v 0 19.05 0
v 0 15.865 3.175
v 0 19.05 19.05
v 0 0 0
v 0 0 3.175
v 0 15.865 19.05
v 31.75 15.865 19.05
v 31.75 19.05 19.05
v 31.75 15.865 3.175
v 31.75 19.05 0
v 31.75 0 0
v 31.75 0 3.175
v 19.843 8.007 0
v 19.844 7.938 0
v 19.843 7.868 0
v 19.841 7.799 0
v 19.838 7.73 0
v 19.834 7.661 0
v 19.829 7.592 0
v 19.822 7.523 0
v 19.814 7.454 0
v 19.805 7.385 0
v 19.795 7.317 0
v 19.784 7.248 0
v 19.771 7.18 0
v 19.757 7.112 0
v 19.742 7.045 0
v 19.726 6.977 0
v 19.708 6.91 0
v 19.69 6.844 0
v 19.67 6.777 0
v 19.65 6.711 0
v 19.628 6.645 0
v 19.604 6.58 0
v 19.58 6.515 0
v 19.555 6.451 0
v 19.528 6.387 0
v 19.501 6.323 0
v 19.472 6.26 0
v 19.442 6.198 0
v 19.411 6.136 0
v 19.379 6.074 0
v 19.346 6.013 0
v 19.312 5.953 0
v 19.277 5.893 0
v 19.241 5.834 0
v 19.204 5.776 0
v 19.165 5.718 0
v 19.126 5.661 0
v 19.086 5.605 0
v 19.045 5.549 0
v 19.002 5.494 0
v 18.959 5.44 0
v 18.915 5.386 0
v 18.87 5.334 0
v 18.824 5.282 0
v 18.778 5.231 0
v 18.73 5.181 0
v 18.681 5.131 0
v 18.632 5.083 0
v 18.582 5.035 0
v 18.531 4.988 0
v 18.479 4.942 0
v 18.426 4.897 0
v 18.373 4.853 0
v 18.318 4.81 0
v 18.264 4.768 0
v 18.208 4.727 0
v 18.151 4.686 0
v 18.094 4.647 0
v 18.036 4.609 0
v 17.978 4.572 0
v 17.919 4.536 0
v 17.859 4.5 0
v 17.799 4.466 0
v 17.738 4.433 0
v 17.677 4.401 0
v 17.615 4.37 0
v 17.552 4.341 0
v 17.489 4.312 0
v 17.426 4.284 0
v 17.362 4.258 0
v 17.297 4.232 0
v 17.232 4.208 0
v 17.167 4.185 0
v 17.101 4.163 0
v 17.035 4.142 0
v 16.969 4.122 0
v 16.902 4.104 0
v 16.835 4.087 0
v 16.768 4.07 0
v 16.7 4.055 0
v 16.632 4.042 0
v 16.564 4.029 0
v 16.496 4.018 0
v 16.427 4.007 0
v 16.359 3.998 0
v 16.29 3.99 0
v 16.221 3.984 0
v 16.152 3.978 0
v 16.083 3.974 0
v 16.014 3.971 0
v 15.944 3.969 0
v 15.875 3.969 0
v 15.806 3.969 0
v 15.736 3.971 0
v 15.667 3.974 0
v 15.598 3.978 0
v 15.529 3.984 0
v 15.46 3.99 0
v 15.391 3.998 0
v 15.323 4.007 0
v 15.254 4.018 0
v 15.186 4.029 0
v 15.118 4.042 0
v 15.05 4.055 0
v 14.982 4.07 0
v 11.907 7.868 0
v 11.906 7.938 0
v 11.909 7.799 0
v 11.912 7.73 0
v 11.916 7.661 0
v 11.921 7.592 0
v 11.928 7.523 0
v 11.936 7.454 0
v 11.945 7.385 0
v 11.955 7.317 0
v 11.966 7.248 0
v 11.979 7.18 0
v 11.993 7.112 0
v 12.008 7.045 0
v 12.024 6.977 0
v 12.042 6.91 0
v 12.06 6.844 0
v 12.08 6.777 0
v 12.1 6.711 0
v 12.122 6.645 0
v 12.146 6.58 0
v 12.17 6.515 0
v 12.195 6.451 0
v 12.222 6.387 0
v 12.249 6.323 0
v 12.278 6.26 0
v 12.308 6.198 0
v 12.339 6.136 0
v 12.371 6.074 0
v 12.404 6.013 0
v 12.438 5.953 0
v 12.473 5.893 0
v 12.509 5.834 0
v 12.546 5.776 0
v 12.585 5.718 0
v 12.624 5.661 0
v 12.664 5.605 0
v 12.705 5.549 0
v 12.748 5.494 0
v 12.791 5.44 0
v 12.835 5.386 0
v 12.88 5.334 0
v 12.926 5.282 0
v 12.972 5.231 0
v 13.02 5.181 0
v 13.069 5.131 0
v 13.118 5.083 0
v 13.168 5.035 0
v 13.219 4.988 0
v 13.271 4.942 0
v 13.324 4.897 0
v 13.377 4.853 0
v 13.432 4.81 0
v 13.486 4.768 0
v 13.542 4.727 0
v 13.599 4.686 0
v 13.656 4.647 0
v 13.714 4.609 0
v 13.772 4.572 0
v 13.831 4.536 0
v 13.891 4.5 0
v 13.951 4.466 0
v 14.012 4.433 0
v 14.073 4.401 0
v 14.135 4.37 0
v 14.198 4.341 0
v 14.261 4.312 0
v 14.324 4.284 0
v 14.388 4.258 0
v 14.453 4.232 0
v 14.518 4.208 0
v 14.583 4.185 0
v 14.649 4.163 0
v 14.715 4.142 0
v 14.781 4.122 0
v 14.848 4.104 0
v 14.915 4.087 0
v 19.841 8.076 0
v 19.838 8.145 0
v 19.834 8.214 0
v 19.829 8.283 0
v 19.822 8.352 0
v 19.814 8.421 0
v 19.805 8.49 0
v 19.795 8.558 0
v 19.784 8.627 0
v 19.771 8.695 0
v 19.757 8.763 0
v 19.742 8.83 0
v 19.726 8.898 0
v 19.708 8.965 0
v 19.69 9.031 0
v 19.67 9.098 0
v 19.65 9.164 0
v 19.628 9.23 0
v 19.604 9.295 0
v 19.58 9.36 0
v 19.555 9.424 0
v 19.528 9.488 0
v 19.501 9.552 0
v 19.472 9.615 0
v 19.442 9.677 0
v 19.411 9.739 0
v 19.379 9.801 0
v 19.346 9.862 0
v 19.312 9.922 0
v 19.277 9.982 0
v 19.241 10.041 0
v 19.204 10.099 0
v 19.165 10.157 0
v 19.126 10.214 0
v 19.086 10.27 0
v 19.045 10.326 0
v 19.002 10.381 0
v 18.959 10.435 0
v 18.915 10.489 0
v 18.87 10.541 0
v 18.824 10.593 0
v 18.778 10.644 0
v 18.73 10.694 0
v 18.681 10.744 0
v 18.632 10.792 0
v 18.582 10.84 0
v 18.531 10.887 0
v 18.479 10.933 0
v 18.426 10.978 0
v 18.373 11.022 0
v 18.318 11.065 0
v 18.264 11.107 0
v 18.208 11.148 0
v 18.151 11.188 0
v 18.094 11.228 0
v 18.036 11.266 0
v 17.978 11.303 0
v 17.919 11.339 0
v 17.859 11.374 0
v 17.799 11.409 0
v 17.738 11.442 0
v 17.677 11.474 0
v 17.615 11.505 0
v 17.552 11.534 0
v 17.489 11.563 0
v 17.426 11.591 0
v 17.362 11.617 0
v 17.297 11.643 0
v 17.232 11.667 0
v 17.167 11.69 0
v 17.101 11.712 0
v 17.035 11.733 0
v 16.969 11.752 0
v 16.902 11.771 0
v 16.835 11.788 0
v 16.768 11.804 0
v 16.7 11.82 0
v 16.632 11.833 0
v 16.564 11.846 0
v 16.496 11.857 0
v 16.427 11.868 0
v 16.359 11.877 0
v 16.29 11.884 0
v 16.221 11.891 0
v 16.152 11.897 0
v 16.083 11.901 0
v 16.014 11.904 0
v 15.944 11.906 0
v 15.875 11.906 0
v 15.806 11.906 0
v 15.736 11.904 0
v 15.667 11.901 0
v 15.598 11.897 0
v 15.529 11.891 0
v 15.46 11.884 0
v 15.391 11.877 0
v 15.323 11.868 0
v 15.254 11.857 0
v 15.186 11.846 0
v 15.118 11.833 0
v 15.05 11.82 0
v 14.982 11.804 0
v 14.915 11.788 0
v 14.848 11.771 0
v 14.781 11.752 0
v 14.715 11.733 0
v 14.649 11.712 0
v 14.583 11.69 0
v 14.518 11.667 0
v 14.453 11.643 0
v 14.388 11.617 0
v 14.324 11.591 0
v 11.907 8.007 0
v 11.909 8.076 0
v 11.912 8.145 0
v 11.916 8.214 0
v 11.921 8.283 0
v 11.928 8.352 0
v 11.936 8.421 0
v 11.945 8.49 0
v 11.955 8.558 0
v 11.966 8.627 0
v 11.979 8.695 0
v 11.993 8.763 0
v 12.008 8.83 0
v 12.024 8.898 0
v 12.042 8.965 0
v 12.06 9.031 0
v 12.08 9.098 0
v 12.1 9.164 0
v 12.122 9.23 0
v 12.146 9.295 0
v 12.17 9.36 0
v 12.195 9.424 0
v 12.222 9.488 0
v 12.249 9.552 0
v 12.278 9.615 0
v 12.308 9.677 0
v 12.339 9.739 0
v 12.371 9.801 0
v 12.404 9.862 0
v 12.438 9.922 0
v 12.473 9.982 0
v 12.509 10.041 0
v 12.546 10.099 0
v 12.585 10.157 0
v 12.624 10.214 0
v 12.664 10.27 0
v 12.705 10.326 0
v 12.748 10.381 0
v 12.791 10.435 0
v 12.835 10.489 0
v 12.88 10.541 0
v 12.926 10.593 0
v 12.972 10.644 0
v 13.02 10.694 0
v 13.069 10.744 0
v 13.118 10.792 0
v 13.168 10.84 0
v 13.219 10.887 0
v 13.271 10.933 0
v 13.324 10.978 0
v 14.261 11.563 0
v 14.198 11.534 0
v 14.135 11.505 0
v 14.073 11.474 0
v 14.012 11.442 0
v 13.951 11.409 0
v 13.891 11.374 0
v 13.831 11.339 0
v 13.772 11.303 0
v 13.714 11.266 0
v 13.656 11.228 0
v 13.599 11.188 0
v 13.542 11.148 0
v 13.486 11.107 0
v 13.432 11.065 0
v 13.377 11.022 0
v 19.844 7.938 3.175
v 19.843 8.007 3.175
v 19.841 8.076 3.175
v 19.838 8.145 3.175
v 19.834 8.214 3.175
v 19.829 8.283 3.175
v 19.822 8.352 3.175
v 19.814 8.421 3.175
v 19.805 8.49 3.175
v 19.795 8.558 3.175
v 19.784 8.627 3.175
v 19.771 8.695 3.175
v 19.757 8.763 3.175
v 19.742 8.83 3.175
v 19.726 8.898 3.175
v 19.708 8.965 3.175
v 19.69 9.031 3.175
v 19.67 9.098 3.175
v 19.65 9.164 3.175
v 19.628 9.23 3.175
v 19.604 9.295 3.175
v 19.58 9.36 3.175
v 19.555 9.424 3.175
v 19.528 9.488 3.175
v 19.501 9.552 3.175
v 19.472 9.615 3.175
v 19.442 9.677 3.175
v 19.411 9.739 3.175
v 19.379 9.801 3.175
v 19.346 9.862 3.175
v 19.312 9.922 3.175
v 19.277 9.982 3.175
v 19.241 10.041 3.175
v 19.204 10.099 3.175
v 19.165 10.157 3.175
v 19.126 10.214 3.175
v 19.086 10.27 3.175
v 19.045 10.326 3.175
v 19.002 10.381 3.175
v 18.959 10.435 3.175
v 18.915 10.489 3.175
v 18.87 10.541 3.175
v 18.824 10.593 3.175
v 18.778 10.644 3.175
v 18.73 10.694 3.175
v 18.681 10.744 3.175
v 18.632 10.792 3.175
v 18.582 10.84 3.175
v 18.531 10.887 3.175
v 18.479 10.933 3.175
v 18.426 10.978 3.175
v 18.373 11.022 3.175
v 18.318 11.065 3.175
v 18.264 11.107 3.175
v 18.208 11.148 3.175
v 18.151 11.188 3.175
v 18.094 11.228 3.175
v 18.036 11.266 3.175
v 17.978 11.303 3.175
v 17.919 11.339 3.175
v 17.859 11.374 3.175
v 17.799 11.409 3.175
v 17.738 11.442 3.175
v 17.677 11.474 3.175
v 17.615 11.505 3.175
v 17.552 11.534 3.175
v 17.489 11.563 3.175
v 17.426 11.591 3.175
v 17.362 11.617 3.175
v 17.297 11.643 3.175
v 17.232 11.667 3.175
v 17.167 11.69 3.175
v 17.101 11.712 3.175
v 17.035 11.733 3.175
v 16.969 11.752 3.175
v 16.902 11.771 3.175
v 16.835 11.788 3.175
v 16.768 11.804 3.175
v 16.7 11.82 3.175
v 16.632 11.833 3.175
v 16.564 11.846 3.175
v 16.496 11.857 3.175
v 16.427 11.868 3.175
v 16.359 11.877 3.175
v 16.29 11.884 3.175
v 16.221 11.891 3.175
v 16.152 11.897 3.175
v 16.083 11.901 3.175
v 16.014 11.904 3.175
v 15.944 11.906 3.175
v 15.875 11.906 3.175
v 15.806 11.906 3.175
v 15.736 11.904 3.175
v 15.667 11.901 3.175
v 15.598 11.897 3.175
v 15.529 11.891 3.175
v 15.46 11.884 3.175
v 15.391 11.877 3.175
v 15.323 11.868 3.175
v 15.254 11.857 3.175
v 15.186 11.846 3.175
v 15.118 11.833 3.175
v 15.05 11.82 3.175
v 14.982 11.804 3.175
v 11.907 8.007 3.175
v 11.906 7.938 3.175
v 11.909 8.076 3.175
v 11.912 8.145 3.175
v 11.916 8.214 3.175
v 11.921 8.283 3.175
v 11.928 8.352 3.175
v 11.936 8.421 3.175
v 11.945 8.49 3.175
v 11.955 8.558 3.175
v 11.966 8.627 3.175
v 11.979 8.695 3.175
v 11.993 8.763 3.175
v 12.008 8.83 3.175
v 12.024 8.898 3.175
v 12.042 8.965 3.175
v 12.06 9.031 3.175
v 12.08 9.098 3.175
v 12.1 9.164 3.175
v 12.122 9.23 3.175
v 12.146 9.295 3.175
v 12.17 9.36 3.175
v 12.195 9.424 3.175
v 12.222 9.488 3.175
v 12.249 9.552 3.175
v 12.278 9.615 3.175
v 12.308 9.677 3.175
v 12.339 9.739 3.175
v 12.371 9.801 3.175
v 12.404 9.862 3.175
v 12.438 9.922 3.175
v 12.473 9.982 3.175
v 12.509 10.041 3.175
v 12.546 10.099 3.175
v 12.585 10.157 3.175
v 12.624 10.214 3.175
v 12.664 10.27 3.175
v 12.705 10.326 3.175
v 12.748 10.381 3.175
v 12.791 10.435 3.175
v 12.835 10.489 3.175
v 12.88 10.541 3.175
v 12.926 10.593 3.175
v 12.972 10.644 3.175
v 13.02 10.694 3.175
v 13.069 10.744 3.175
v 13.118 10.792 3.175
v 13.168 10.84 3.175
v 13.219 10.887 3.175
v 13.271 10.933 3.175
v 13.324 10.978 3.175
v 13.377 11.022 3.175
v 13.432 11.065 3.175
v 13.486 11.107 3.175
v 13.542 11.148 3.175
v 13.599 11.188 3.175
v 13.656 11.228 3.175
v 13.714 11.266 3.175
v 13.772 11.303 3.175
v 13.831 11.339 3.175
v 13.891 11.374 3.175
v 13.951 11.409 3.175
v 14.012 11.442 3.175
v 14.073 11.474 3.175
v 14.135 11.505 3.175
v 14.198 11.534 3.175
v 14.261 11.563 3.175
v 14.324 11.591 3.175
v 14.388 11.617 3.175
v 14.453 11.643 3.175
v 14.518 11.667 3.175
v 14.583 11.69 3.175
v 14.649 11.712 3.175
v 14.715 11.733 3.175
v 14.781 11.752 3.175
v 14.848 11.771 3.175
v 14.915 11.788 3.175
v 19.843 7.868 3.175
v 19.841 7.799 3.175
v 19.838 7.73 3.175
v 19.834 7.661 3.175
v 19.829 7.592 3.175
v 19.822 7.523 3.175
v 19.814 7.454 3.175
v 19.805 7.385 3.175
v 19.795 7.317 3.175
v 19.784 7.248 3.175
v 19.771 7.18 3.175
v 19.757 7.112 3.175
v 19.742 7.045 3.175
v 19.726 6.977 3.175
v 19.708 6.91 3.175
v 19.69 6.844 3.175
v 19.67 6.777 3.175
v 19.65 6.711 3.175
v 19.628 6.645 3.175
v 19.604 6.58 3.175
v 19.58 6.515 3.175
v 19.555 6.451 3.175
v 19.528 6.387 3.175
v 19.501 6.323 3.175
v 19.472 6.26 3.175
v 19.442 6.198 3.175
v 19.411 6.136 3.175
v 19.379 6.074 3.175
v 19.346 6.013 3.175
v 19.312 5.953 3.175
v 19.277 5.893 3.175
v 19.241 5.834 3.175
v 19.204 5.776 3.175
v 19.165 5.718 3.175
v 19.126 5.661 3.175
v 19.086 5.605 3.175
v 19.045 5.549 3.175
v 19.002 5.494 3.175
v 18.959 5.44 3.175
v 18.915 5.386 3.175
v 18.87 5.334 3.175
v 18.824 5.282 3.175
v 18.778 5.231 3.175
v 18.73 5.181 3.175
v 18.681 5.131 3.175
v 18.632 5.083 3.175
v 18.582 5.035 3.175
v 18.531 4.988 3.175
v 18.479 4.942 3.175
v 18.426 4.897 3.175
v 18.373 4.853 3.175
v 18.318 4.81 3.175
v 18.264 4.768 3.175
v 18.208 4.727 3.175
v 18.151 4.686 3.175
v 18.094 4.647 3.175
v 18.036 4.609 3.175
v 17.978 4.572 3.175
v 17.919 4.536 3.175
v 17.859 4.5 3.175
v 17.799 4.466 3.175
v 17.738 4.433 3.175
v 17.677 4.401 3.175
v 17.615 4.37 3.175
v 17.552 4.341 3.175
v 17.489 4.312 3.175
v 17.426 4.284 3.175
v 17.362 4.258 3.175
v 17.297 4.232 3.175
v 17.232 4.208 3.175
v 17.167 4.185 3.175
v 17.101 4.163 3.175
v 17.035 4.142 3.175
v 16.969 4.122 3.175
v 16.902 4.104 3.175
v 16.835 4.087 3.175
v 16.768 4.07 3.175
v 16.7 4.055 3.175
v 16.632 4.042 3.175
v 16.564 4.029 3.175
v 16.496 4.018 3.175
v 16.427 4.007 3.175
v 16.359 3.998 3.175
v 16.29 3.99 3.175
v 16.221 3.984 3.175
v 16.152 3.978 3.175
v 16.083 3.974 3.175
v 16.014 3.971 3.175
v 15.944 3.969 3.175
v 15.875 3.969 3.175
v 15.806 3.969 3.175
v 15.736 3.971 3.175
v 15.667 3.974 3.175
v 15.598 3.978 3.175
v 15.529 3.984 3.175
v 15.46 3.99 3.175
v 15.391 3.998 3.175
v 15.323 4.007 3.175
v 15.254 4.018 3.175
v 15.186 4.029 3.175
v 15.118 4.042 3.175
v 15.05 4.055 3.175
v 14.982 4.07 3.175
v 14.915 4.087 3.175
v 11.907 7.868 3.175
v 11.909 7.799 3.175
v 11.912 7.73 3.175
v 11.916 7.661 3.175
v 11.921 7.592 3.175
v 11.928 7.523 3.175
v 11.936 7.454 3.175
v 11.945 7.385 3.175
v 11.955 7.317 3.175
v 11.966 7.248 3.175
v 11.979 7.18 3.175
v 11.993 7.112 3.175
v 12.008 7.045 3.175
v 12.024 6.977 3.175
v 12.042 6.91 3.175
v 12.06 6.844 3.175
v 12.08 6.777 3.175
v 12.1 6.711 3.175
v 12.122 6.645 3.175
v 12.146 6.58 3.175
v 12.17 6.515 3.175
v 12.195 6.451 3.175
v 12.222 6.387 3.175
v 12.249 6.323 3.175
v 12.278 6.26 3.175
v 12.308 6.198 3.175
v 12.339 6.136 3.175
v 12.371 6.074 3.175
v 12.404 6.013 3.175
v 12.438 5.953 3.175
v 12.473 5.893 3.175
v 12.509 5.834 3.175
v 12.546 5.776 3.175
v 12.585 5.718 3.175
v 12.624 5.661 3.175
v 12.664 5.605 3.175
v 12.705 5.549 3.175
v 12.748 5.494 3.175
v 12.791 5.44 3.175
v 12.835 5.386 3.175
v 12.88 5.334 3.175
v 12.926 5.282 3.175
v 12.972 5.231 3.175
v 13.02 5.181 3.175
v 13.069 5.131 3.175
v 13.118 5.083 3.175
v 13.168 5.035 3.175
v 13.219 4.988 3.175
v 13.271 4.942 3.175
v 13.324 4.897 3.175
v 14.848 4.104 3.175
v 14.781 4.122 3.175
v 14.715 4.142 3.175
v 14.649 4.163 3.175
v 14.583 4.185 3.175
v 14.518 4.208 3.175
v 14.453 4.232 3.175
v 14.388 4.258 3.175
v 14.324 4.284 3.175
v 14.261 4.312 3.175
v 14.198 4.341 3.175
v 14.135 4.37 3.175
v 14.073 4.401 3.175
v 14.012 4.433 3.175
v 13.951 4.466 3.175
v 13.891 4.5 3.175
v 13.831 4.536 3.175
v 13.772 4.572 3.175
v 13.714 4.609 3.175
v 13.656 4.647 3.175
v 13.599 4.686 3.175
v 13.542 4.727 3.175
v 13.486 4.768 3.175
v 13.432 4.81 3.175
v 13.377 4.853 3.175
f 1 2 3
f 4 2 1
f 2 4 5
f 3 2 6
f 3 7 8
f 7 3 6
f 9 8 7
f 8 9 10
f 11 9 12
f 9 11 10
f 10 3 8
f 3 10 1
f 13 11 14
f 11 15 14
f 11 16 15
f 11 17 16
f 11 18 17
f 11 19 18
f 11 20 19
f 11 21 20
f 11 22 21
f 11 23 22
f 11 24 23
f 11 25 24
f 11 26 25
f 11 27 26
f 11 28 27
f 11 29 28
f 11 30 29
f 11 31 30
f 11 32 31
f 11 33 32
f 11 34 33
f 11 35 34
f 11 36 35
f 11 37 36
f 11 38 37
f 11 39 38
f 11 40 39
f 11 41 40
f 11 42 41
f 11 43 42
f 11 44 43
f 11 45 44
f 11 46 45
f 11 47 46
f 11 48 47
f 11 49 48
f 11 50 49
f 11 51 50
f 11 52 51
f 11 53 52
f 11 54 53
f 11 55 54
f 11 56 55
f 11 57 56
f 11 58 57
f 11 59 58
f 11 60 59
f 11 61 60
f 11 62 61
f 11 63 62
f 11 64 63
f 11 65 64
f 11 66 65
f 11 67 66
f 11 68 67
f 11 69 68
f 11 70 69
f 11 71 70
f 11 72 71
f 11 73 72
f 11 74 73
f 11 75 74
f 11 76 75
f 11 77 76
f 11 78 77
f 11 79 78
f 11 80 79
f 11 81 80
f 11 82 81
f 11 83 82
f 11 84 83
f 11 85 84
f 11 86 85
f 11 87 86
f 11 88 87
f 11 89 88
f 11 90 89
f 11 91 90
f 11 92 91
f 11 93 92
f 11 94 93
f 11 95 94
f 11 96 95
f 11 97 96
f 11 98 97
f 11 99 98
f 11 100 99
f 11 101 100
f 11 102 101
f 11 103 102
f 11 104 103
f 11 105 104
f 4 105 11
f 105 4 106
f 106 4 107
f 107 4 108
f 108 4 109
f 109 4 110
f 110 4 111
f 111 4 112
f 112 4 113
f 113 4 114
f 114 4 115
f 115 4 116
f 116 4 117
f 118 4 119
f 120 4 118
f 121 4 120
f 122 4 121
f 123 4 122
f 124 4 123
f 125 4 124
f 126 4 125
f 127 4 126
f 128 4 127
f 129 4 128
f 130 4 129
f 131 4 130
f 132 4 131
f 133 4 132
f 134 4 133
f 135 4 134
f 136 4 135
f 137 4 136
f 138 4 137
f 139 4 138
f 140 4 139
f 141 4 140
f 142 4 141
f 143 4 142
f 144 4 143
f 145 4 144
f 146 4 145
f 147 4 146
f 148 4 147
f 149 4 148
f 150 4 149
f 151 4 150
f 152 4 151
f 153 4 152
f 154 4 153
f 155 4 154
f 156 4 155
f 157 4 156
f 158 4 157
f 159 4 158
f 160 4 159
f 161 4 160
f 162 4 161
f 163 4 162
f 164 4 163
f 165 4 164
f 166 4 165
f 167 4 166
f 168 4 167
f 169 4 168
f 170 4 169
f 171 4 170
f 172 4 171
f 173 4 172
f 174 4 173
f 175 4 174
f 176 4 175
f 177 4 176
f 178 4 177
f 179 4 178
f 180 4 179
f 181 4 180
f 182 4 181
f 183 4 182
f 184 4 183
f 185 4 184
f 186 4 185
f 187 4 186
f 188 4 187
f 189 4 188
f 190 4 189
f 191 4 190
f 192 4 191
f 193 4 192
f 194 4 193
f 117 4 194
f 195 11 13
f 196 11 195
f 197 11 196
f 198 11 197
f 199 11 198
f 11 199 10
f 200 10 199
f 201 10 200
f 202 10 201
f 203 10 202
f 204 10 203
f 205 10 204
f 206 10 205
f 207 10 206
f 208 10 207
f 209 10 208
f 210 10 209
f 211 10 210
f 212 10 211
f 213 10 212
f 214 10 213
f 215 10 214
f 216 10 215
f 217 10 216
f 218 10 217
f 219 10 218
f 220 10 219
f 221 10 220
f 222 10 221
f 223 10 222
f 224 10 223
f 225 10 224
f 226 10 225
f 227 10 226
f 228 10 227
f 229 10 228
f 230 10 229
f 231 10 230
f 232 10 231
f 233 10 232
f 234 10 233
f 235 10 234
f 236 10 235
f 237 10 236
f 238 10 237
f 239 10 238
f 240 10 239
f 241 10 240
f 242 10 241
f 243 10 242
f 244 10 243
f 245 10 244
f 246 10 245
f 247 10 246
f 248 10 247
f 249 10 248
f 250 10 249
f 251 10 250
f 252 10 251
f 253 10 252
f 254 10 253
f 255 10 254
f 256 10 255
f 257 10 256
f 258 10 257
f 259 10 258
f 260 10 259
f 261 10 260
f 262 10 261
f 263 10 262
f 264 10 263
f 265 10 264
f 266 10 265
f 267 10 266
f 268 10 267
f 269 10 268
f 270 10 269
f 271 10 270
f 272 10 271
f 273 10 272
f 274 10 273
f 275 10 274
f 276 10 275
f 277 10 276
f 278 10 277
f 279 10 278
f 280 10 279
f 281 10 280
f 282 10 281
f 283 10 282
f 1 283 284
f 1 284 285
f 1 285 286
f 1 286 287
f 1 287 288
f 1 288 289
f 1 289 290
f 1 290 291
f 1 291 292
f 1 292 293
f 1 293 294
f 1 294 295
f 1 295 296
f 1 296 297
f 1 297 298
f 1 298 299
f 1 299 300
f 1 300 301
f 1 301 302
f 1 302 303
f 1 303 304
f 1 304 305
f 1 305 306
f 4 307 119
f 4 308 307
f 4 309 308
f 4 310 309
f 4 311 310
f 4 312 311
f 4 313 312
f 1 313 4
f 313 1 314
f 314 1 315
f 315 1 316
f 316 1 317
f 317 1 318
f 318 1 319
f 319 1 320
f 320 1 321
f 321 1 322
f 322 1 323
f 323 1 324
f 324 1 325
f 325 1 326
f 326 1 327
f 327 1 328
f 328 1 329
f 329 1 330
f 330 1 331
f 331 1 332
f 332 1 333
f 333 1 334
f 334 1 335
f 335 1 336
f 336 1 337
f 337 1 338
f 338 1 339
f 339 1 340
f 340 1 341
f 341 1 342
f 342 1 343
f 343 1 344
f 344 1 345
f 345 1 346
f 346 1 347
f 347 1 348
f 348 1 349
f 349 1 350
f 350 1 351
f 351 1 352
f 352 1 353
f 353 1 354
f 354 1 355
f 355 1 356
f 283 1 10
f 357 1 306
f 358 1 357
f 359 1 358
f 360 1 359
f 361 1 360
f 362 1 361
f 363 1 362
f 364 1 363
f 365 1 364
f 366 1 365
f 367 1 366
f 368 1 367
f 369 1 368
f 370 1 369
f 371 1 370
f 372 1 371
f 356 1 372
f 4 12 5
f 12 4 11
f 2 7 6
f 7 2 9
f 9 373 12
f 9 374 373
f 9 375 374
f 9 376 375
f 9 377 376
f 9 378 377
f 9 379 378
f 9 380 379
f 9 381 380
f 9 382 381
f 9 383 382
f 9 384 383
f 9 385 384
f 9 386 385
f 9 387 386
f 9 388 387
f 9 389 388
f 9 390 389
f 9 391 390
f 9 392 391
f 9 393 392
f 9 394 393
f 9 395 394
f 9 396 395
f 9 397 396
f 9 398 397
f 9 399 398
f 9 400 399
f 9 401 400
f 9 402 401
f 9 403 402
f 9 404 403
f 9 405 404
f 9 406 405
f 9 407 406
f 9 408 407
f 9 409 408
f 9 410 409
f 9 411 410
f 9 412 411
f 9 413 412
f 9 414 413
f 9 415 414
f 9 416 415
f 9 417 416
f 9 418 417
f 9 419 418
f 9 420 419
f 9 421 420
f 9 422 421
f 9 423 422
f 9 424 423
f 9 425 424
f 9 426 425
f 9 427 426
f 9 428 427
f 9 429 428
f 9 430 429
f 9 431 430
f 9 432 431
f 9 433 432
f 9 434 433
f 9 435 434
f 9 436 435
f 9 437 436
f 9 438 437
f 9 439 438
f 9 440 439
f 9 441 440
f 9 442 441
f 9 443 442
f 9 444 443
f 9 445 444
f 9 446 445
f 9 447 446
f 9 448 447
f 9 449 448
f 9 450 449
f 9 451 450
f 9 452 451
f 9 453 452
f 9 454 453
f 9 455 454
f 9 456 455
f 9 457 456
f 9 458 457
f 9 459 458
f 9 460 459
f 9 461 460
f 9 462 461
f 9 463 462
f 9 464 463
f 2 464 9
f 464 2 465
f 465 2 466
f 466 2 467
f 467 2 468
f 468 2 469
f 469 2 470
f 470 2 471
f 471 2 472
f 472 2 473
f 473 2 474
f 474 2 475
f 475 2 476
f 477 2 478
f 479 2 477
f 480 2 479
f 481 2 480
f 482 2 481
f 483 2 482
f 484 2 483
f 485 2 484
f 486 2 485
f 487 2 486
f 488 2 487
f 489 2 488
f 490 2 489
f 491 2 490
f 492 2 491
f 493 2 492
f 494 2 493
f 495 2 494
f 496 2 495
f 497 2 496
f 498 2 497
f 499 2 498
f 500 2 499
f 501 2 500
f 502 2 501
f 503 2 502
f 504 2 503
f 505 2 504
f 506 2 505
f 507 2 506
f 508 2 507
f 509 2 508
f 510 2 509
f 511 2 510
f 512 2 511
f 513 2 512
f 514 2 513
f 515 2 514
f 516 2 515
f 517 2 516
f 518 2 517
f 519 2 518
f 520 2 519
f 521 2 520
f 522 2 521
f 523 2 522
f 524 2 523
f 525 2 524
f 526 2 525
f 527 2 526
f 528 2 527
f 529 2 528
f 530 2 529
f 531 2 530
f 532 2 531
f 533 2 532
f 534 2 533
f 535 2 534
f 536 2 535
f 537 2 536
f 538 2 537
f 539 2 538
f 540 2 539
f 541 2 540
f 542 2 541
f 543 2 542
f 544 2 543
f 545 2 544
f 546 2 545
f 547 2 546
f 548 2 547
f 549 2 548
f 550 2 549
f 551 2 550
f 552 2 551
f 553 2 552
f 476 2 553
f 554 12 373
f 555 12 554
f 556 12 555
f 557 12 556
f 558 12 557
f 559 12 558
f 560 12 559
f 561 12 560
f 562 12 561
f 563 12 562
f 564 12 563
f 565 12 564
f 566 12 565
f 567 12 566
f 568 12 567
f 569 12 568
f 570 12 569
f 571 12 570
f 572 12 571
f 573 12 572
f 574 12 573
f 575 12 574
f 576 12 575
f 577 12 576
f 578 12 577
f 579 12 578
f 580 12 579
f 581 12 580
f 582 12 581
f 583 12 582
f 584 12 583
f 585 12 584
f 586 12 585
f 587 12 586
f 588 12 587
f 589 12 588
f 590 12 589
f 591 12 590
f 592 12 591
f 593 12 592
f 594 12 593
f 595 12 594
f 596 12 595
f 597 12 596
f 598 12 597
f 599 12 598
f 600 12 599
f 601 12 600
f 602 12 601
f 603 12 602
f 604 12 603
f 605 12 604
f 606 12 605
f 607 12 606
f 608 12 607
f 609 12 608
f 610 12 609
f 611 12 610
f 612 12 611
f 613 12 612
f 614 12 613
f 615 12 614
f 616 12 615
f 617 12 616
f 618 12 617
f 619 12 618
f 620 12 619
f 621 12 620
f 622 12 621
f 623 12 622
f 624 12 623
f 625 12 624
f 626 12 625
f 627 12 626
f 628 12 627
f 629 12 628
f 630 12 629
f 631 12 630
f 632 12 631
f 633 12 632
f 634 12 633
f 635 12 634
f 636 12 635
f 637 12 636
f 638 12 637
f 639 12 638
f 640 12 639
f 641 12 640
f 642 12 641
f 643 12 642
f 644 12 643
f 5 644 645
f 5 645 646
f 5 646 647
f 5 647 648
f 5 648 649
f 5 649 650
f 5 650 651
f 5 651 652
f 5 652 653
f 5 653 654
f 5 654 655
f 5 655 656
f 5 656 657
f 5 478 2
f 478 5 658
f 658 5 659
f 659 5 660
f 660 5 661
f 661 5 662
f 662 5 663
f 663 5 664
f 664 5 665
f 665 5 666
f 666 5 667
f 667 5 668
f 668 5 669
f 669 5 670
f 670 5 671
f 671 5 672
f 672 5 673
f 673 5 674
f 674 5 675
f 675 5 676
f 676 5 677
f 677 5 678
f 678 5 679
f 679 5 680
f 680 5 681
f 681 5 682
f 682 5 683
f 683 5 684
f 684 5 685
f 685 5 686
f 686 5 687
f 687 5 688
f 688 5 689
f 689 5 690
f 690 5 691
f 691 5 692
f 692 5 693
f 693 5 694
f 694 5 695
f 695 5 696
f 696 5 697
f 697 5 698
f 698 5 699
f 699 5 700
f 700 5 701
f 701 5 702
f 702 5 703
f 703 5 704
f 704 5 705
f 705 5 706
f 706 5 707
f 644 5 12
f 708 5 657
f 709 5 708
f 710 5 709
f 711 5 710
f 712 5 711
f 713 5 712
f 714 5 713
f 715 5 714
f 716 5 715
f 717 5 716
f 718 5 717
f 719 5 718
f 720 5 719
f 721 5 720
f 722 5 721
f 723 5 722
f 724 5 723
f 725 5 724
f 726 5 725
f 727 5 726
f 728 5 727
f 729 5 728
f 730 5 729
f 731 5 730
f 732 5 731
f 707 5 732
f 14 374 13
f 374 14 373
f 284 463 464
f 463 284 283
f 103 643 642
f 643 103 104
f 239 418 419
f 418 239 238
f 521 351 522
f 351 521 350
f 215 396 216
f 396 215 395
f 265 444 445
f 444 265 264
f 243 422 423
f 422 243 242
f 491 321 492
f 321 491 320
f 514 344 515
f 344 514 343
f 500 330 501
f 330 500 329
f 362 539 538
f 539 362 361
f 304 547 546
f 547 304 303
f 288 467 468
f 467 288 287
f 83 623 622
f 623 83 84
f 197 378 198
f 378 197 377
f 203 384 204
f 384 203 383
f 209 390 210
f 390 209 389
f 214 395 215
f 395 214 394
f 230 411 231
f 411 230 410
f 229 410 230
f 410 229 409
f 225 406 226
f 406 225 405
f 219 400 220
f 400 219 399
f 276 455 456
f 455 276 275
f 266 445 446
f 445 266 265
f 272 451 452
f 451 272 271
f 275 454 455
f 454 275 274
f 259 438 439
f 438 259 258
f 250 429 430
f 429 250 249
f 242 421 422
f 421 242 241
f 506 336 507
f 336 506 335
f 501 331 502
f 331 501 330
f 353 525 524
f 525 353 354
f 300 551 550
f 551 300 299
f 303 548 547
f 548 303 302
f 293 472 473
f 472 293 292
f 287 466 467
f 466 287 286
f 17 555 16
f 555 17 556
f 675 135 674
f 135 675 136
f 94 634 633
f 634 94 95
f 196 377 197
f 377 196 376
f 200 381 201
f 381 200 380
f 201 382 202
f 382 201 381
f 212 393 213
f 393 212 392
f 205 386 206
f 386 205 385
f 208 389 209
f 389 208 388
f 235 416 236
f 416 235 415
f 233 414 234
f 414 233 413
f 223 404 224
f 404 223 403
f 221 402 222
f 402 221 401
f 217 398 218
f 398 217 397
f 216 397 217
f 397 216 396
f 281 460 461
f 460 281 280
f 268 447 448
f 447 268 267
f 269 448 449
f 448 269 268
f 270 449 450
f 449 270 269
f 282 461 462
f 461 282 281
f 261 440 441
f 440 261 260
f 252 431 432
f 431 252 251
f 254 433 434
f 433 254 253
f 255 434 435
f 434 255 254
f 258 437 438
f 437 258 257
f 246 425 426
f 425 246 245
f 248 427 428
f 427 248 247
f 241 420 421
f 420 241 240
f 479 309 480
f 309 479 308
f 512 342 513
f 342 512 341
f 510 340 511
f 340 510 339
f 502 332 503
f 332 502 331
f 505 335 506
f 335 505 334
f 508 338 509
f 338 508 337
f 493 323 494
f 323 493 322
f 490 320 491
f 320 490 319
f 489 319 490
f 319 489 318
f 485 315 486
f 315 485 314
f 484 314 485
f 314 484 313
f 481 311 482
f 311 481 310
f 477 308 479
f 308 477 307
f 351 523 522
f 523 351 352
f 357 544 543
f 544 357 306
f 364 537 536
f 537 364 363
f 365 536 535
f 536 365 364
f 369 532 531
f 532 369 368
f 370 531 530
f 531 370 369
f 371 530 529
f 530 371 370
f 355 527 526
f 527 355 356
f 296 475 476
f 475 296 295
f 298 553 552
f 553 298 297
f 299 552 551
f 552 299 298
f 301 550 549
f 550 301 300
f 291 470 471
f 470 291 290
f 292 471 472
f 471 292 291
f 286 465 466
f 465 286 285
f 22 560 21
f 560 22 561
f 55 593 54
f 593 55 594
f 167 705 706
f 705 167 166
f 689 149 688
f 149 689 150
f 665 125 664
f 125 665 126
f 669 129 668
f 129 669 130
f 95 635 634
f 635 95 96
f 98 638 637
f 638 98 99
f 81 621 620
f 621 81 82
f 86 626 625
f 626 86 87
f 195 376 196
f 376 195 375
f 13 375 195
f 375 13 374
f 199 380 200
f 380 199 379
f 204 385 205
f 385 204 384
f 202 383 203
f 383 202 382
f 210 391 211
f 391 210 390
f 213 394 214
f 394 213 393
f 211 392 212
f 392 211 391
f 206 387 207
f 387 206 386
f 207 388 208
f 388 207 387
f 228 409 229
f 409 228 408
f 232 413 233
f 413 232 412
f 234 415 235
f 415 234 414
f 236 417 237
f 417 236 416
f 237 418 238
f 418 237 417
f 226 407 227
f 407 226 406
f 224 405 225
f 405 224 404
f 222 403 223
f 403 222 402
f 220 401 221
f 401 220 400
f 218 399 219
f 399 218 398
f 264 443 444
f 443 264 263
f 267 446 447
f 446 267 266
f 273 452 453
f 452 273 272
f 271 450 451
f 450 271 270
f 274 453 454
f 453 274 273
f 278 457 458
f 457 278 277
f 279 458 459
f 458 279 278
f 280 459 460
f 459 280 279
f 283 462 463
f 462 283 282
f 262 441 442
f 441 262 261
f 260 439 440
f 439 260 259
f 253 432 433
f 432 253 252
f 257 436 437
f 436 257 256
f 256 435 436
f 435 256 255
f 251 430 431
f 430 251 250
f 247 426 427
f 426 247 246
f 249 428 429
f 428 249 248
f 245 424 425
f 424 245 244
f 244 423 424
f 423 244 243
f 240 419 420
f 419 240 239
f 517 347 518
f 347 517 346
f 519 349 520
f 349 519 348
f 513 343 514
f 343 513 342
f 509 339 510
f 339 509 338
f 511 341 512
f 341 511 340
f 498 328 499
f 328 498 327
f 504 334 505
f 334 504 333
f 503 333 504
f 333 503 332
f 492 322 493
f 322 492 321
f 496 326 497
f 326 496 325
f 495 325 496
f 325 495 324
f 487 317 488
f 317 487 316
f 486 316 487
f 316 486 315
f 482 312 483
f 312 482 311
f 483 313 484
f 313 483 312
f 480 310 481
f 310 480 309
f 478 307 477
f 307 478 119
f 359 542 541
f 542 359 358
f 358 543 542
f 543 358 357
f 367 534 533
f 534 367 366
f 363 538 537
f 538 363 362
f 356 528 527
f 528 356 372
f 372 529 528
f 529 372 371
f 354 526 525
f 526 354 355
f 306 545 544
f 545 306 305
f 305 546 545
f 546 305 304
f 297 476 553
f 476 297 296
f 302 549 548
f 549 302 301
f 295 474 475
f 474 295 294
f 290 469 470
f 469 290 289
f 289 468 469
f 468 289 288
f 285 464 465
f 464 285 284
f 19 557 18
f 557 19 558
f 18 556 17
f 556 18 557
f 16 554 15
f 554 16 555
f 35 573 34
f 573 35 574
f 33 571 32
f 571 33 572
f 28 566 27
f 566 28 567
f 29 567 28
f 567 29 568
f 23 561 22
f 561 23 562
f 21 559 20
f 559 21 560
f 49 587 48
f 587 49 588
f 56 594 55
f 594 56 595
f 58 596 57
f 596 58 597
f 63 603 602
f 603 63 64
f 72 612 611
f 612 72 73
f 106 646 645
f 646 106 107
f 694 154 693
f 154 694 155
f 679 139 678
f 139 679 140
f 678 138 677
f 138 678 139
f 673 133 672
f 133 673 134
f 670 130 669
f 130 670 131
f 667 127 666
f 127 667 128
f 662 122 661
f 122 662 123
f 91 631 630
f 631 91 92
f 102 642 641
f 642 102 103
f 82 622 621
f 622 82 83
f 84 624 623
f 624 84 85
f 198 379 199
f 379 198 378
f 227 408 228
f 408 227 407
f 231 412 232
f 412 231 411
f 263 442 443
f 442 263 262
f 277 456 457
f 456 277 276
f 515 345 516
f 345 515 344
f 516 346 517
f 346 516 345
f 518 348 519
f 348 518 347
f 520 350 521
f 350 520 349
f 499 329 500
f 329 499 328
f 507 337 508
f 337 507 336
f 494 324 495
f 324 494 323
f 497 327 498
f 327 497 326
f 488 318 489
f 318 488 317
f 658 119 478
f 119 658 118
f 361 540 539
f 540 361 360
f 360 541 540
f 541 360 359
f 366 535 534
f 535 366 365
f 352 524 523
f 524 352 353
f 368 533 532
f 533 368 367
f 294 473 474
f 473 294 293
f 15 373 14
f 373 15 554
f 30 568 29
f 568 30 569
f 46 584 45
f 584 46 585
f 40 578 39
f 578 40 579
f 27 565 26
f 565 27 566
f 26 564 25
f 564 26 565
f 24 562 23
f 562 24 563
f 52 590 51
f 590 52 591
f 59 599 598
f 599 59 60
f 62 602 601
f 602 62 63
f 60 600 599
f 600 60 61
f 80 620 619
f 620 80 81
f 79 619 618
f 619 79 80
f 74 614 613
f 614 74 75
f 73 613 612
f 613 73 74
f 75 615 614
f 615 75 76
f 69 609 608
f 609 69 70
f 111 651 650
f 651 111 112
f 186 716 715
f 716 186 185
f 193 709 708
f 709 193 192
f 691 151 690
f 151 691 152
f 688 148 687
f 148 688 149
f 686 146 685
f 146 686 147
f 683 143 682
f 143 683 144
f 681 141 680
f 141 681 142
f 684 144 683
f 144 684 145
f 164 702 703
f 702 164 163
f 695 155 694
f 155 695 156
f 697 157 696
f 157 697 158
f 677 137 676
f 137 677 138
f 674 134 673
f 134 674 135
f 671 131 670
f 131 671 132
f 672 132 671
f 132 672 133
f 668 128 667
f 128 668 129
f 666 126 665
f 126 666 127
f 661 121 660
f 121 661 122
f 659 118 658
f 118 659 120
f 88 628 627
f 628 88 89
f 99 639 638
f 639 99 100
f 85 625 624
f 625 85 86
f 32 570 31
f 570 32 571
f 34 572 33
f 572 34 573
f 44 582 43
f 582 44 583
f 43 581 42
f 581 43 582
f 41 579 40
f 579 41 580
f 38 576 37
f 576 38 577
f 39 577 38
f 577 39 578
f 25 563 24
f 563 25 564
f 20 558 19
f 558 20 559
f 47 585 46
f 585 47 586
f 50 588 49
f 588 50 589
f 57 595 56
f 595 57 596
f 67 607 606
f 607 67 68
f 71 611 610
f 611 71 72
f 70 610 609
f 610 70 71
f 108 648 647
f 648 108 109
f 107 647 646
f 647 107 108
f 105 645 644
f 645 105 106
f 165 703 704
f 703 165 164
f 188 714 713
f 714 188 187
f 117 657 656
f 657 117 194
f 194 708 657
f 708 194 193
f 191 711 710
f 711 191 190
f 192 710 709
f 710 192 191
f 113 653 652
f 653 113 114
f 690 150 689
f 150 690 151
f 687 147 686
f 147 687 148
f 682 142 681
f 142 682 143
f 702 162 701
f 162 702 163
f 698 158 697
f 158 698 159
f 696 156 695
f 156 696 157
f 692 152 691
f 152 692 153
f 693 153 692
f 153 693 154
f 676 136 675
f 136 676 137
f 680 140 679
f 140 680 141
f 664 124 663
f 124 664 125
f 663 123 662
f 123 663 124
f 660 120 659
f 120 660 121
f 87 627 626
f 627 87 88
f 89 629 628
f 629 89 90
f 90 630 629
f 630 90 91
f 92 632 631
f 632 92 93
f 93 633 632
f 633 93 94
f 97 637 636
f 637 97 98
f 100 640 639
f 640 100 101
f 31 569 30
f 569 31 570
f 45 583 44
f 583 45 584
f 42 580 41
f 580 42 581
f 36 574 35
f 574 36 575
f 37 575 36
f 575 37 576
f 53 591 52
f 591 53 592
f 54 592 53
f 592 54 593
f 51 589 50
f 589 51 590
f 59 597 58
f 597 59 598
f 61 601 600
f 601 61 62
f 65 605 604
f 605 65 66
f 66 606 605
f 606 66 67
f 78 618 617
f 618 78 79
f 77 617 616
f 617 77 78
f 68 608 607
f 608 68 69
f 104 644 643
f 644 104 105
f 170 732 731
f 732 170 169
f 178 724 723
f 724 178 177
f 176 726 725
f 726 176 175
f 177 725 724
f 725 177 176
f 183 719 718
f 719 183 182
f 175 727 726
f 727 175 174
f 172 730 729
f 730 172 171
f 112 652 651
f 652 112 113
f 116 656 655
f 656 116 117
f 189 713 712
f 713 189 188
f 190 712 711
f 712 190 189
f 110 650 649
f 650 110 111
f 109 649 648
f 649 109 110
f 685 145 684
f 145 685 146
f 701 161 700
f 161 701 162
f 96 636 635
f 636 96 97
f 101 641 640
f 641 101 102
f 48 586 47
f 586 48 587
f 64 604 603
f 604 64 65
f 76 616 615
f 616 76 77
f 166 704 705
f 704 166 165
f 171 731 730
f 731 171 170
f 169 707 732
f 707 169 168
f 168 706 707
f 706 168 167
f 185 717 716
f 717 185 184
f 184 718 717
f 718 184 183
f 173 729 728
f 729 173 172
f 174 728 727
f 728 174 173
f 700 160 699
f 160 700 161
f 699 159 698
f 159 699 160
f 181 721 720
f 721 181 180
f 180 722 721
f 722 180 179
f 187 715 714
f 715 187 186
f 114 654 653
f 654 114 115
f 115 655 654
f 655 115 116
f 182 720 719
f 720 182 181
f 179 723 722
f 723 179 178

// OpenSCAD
$fn = 360;

function in2mm (v) = v * 25.4;
function mm2in (v) = v / 25.4;
function frac (x, y) = (1 / y) * x;

cube_w = in2mm (1 + frac (1, 4));
cube_h = in2mm (0.75);
cube_d = in2mm (0.75);
cube_wall = in2mm (frac (1, 8));
hole_d = in2mm (frac (5, 16));

difference () {
  cube ([cube_w, cube_d, cube_h]);

  translate ([-0.01, -0.01, cube_wall])
    cube ([cube_w + 0.02, cube_d - cube_wall, (cube_h - cube_wall) + 0.02]);

  translate ([cube_w / 2, (cube_d - cube_wall) / 2, -0.01])
    cylinder (d = hole_d, h = cube_wall + 0.02);
}
